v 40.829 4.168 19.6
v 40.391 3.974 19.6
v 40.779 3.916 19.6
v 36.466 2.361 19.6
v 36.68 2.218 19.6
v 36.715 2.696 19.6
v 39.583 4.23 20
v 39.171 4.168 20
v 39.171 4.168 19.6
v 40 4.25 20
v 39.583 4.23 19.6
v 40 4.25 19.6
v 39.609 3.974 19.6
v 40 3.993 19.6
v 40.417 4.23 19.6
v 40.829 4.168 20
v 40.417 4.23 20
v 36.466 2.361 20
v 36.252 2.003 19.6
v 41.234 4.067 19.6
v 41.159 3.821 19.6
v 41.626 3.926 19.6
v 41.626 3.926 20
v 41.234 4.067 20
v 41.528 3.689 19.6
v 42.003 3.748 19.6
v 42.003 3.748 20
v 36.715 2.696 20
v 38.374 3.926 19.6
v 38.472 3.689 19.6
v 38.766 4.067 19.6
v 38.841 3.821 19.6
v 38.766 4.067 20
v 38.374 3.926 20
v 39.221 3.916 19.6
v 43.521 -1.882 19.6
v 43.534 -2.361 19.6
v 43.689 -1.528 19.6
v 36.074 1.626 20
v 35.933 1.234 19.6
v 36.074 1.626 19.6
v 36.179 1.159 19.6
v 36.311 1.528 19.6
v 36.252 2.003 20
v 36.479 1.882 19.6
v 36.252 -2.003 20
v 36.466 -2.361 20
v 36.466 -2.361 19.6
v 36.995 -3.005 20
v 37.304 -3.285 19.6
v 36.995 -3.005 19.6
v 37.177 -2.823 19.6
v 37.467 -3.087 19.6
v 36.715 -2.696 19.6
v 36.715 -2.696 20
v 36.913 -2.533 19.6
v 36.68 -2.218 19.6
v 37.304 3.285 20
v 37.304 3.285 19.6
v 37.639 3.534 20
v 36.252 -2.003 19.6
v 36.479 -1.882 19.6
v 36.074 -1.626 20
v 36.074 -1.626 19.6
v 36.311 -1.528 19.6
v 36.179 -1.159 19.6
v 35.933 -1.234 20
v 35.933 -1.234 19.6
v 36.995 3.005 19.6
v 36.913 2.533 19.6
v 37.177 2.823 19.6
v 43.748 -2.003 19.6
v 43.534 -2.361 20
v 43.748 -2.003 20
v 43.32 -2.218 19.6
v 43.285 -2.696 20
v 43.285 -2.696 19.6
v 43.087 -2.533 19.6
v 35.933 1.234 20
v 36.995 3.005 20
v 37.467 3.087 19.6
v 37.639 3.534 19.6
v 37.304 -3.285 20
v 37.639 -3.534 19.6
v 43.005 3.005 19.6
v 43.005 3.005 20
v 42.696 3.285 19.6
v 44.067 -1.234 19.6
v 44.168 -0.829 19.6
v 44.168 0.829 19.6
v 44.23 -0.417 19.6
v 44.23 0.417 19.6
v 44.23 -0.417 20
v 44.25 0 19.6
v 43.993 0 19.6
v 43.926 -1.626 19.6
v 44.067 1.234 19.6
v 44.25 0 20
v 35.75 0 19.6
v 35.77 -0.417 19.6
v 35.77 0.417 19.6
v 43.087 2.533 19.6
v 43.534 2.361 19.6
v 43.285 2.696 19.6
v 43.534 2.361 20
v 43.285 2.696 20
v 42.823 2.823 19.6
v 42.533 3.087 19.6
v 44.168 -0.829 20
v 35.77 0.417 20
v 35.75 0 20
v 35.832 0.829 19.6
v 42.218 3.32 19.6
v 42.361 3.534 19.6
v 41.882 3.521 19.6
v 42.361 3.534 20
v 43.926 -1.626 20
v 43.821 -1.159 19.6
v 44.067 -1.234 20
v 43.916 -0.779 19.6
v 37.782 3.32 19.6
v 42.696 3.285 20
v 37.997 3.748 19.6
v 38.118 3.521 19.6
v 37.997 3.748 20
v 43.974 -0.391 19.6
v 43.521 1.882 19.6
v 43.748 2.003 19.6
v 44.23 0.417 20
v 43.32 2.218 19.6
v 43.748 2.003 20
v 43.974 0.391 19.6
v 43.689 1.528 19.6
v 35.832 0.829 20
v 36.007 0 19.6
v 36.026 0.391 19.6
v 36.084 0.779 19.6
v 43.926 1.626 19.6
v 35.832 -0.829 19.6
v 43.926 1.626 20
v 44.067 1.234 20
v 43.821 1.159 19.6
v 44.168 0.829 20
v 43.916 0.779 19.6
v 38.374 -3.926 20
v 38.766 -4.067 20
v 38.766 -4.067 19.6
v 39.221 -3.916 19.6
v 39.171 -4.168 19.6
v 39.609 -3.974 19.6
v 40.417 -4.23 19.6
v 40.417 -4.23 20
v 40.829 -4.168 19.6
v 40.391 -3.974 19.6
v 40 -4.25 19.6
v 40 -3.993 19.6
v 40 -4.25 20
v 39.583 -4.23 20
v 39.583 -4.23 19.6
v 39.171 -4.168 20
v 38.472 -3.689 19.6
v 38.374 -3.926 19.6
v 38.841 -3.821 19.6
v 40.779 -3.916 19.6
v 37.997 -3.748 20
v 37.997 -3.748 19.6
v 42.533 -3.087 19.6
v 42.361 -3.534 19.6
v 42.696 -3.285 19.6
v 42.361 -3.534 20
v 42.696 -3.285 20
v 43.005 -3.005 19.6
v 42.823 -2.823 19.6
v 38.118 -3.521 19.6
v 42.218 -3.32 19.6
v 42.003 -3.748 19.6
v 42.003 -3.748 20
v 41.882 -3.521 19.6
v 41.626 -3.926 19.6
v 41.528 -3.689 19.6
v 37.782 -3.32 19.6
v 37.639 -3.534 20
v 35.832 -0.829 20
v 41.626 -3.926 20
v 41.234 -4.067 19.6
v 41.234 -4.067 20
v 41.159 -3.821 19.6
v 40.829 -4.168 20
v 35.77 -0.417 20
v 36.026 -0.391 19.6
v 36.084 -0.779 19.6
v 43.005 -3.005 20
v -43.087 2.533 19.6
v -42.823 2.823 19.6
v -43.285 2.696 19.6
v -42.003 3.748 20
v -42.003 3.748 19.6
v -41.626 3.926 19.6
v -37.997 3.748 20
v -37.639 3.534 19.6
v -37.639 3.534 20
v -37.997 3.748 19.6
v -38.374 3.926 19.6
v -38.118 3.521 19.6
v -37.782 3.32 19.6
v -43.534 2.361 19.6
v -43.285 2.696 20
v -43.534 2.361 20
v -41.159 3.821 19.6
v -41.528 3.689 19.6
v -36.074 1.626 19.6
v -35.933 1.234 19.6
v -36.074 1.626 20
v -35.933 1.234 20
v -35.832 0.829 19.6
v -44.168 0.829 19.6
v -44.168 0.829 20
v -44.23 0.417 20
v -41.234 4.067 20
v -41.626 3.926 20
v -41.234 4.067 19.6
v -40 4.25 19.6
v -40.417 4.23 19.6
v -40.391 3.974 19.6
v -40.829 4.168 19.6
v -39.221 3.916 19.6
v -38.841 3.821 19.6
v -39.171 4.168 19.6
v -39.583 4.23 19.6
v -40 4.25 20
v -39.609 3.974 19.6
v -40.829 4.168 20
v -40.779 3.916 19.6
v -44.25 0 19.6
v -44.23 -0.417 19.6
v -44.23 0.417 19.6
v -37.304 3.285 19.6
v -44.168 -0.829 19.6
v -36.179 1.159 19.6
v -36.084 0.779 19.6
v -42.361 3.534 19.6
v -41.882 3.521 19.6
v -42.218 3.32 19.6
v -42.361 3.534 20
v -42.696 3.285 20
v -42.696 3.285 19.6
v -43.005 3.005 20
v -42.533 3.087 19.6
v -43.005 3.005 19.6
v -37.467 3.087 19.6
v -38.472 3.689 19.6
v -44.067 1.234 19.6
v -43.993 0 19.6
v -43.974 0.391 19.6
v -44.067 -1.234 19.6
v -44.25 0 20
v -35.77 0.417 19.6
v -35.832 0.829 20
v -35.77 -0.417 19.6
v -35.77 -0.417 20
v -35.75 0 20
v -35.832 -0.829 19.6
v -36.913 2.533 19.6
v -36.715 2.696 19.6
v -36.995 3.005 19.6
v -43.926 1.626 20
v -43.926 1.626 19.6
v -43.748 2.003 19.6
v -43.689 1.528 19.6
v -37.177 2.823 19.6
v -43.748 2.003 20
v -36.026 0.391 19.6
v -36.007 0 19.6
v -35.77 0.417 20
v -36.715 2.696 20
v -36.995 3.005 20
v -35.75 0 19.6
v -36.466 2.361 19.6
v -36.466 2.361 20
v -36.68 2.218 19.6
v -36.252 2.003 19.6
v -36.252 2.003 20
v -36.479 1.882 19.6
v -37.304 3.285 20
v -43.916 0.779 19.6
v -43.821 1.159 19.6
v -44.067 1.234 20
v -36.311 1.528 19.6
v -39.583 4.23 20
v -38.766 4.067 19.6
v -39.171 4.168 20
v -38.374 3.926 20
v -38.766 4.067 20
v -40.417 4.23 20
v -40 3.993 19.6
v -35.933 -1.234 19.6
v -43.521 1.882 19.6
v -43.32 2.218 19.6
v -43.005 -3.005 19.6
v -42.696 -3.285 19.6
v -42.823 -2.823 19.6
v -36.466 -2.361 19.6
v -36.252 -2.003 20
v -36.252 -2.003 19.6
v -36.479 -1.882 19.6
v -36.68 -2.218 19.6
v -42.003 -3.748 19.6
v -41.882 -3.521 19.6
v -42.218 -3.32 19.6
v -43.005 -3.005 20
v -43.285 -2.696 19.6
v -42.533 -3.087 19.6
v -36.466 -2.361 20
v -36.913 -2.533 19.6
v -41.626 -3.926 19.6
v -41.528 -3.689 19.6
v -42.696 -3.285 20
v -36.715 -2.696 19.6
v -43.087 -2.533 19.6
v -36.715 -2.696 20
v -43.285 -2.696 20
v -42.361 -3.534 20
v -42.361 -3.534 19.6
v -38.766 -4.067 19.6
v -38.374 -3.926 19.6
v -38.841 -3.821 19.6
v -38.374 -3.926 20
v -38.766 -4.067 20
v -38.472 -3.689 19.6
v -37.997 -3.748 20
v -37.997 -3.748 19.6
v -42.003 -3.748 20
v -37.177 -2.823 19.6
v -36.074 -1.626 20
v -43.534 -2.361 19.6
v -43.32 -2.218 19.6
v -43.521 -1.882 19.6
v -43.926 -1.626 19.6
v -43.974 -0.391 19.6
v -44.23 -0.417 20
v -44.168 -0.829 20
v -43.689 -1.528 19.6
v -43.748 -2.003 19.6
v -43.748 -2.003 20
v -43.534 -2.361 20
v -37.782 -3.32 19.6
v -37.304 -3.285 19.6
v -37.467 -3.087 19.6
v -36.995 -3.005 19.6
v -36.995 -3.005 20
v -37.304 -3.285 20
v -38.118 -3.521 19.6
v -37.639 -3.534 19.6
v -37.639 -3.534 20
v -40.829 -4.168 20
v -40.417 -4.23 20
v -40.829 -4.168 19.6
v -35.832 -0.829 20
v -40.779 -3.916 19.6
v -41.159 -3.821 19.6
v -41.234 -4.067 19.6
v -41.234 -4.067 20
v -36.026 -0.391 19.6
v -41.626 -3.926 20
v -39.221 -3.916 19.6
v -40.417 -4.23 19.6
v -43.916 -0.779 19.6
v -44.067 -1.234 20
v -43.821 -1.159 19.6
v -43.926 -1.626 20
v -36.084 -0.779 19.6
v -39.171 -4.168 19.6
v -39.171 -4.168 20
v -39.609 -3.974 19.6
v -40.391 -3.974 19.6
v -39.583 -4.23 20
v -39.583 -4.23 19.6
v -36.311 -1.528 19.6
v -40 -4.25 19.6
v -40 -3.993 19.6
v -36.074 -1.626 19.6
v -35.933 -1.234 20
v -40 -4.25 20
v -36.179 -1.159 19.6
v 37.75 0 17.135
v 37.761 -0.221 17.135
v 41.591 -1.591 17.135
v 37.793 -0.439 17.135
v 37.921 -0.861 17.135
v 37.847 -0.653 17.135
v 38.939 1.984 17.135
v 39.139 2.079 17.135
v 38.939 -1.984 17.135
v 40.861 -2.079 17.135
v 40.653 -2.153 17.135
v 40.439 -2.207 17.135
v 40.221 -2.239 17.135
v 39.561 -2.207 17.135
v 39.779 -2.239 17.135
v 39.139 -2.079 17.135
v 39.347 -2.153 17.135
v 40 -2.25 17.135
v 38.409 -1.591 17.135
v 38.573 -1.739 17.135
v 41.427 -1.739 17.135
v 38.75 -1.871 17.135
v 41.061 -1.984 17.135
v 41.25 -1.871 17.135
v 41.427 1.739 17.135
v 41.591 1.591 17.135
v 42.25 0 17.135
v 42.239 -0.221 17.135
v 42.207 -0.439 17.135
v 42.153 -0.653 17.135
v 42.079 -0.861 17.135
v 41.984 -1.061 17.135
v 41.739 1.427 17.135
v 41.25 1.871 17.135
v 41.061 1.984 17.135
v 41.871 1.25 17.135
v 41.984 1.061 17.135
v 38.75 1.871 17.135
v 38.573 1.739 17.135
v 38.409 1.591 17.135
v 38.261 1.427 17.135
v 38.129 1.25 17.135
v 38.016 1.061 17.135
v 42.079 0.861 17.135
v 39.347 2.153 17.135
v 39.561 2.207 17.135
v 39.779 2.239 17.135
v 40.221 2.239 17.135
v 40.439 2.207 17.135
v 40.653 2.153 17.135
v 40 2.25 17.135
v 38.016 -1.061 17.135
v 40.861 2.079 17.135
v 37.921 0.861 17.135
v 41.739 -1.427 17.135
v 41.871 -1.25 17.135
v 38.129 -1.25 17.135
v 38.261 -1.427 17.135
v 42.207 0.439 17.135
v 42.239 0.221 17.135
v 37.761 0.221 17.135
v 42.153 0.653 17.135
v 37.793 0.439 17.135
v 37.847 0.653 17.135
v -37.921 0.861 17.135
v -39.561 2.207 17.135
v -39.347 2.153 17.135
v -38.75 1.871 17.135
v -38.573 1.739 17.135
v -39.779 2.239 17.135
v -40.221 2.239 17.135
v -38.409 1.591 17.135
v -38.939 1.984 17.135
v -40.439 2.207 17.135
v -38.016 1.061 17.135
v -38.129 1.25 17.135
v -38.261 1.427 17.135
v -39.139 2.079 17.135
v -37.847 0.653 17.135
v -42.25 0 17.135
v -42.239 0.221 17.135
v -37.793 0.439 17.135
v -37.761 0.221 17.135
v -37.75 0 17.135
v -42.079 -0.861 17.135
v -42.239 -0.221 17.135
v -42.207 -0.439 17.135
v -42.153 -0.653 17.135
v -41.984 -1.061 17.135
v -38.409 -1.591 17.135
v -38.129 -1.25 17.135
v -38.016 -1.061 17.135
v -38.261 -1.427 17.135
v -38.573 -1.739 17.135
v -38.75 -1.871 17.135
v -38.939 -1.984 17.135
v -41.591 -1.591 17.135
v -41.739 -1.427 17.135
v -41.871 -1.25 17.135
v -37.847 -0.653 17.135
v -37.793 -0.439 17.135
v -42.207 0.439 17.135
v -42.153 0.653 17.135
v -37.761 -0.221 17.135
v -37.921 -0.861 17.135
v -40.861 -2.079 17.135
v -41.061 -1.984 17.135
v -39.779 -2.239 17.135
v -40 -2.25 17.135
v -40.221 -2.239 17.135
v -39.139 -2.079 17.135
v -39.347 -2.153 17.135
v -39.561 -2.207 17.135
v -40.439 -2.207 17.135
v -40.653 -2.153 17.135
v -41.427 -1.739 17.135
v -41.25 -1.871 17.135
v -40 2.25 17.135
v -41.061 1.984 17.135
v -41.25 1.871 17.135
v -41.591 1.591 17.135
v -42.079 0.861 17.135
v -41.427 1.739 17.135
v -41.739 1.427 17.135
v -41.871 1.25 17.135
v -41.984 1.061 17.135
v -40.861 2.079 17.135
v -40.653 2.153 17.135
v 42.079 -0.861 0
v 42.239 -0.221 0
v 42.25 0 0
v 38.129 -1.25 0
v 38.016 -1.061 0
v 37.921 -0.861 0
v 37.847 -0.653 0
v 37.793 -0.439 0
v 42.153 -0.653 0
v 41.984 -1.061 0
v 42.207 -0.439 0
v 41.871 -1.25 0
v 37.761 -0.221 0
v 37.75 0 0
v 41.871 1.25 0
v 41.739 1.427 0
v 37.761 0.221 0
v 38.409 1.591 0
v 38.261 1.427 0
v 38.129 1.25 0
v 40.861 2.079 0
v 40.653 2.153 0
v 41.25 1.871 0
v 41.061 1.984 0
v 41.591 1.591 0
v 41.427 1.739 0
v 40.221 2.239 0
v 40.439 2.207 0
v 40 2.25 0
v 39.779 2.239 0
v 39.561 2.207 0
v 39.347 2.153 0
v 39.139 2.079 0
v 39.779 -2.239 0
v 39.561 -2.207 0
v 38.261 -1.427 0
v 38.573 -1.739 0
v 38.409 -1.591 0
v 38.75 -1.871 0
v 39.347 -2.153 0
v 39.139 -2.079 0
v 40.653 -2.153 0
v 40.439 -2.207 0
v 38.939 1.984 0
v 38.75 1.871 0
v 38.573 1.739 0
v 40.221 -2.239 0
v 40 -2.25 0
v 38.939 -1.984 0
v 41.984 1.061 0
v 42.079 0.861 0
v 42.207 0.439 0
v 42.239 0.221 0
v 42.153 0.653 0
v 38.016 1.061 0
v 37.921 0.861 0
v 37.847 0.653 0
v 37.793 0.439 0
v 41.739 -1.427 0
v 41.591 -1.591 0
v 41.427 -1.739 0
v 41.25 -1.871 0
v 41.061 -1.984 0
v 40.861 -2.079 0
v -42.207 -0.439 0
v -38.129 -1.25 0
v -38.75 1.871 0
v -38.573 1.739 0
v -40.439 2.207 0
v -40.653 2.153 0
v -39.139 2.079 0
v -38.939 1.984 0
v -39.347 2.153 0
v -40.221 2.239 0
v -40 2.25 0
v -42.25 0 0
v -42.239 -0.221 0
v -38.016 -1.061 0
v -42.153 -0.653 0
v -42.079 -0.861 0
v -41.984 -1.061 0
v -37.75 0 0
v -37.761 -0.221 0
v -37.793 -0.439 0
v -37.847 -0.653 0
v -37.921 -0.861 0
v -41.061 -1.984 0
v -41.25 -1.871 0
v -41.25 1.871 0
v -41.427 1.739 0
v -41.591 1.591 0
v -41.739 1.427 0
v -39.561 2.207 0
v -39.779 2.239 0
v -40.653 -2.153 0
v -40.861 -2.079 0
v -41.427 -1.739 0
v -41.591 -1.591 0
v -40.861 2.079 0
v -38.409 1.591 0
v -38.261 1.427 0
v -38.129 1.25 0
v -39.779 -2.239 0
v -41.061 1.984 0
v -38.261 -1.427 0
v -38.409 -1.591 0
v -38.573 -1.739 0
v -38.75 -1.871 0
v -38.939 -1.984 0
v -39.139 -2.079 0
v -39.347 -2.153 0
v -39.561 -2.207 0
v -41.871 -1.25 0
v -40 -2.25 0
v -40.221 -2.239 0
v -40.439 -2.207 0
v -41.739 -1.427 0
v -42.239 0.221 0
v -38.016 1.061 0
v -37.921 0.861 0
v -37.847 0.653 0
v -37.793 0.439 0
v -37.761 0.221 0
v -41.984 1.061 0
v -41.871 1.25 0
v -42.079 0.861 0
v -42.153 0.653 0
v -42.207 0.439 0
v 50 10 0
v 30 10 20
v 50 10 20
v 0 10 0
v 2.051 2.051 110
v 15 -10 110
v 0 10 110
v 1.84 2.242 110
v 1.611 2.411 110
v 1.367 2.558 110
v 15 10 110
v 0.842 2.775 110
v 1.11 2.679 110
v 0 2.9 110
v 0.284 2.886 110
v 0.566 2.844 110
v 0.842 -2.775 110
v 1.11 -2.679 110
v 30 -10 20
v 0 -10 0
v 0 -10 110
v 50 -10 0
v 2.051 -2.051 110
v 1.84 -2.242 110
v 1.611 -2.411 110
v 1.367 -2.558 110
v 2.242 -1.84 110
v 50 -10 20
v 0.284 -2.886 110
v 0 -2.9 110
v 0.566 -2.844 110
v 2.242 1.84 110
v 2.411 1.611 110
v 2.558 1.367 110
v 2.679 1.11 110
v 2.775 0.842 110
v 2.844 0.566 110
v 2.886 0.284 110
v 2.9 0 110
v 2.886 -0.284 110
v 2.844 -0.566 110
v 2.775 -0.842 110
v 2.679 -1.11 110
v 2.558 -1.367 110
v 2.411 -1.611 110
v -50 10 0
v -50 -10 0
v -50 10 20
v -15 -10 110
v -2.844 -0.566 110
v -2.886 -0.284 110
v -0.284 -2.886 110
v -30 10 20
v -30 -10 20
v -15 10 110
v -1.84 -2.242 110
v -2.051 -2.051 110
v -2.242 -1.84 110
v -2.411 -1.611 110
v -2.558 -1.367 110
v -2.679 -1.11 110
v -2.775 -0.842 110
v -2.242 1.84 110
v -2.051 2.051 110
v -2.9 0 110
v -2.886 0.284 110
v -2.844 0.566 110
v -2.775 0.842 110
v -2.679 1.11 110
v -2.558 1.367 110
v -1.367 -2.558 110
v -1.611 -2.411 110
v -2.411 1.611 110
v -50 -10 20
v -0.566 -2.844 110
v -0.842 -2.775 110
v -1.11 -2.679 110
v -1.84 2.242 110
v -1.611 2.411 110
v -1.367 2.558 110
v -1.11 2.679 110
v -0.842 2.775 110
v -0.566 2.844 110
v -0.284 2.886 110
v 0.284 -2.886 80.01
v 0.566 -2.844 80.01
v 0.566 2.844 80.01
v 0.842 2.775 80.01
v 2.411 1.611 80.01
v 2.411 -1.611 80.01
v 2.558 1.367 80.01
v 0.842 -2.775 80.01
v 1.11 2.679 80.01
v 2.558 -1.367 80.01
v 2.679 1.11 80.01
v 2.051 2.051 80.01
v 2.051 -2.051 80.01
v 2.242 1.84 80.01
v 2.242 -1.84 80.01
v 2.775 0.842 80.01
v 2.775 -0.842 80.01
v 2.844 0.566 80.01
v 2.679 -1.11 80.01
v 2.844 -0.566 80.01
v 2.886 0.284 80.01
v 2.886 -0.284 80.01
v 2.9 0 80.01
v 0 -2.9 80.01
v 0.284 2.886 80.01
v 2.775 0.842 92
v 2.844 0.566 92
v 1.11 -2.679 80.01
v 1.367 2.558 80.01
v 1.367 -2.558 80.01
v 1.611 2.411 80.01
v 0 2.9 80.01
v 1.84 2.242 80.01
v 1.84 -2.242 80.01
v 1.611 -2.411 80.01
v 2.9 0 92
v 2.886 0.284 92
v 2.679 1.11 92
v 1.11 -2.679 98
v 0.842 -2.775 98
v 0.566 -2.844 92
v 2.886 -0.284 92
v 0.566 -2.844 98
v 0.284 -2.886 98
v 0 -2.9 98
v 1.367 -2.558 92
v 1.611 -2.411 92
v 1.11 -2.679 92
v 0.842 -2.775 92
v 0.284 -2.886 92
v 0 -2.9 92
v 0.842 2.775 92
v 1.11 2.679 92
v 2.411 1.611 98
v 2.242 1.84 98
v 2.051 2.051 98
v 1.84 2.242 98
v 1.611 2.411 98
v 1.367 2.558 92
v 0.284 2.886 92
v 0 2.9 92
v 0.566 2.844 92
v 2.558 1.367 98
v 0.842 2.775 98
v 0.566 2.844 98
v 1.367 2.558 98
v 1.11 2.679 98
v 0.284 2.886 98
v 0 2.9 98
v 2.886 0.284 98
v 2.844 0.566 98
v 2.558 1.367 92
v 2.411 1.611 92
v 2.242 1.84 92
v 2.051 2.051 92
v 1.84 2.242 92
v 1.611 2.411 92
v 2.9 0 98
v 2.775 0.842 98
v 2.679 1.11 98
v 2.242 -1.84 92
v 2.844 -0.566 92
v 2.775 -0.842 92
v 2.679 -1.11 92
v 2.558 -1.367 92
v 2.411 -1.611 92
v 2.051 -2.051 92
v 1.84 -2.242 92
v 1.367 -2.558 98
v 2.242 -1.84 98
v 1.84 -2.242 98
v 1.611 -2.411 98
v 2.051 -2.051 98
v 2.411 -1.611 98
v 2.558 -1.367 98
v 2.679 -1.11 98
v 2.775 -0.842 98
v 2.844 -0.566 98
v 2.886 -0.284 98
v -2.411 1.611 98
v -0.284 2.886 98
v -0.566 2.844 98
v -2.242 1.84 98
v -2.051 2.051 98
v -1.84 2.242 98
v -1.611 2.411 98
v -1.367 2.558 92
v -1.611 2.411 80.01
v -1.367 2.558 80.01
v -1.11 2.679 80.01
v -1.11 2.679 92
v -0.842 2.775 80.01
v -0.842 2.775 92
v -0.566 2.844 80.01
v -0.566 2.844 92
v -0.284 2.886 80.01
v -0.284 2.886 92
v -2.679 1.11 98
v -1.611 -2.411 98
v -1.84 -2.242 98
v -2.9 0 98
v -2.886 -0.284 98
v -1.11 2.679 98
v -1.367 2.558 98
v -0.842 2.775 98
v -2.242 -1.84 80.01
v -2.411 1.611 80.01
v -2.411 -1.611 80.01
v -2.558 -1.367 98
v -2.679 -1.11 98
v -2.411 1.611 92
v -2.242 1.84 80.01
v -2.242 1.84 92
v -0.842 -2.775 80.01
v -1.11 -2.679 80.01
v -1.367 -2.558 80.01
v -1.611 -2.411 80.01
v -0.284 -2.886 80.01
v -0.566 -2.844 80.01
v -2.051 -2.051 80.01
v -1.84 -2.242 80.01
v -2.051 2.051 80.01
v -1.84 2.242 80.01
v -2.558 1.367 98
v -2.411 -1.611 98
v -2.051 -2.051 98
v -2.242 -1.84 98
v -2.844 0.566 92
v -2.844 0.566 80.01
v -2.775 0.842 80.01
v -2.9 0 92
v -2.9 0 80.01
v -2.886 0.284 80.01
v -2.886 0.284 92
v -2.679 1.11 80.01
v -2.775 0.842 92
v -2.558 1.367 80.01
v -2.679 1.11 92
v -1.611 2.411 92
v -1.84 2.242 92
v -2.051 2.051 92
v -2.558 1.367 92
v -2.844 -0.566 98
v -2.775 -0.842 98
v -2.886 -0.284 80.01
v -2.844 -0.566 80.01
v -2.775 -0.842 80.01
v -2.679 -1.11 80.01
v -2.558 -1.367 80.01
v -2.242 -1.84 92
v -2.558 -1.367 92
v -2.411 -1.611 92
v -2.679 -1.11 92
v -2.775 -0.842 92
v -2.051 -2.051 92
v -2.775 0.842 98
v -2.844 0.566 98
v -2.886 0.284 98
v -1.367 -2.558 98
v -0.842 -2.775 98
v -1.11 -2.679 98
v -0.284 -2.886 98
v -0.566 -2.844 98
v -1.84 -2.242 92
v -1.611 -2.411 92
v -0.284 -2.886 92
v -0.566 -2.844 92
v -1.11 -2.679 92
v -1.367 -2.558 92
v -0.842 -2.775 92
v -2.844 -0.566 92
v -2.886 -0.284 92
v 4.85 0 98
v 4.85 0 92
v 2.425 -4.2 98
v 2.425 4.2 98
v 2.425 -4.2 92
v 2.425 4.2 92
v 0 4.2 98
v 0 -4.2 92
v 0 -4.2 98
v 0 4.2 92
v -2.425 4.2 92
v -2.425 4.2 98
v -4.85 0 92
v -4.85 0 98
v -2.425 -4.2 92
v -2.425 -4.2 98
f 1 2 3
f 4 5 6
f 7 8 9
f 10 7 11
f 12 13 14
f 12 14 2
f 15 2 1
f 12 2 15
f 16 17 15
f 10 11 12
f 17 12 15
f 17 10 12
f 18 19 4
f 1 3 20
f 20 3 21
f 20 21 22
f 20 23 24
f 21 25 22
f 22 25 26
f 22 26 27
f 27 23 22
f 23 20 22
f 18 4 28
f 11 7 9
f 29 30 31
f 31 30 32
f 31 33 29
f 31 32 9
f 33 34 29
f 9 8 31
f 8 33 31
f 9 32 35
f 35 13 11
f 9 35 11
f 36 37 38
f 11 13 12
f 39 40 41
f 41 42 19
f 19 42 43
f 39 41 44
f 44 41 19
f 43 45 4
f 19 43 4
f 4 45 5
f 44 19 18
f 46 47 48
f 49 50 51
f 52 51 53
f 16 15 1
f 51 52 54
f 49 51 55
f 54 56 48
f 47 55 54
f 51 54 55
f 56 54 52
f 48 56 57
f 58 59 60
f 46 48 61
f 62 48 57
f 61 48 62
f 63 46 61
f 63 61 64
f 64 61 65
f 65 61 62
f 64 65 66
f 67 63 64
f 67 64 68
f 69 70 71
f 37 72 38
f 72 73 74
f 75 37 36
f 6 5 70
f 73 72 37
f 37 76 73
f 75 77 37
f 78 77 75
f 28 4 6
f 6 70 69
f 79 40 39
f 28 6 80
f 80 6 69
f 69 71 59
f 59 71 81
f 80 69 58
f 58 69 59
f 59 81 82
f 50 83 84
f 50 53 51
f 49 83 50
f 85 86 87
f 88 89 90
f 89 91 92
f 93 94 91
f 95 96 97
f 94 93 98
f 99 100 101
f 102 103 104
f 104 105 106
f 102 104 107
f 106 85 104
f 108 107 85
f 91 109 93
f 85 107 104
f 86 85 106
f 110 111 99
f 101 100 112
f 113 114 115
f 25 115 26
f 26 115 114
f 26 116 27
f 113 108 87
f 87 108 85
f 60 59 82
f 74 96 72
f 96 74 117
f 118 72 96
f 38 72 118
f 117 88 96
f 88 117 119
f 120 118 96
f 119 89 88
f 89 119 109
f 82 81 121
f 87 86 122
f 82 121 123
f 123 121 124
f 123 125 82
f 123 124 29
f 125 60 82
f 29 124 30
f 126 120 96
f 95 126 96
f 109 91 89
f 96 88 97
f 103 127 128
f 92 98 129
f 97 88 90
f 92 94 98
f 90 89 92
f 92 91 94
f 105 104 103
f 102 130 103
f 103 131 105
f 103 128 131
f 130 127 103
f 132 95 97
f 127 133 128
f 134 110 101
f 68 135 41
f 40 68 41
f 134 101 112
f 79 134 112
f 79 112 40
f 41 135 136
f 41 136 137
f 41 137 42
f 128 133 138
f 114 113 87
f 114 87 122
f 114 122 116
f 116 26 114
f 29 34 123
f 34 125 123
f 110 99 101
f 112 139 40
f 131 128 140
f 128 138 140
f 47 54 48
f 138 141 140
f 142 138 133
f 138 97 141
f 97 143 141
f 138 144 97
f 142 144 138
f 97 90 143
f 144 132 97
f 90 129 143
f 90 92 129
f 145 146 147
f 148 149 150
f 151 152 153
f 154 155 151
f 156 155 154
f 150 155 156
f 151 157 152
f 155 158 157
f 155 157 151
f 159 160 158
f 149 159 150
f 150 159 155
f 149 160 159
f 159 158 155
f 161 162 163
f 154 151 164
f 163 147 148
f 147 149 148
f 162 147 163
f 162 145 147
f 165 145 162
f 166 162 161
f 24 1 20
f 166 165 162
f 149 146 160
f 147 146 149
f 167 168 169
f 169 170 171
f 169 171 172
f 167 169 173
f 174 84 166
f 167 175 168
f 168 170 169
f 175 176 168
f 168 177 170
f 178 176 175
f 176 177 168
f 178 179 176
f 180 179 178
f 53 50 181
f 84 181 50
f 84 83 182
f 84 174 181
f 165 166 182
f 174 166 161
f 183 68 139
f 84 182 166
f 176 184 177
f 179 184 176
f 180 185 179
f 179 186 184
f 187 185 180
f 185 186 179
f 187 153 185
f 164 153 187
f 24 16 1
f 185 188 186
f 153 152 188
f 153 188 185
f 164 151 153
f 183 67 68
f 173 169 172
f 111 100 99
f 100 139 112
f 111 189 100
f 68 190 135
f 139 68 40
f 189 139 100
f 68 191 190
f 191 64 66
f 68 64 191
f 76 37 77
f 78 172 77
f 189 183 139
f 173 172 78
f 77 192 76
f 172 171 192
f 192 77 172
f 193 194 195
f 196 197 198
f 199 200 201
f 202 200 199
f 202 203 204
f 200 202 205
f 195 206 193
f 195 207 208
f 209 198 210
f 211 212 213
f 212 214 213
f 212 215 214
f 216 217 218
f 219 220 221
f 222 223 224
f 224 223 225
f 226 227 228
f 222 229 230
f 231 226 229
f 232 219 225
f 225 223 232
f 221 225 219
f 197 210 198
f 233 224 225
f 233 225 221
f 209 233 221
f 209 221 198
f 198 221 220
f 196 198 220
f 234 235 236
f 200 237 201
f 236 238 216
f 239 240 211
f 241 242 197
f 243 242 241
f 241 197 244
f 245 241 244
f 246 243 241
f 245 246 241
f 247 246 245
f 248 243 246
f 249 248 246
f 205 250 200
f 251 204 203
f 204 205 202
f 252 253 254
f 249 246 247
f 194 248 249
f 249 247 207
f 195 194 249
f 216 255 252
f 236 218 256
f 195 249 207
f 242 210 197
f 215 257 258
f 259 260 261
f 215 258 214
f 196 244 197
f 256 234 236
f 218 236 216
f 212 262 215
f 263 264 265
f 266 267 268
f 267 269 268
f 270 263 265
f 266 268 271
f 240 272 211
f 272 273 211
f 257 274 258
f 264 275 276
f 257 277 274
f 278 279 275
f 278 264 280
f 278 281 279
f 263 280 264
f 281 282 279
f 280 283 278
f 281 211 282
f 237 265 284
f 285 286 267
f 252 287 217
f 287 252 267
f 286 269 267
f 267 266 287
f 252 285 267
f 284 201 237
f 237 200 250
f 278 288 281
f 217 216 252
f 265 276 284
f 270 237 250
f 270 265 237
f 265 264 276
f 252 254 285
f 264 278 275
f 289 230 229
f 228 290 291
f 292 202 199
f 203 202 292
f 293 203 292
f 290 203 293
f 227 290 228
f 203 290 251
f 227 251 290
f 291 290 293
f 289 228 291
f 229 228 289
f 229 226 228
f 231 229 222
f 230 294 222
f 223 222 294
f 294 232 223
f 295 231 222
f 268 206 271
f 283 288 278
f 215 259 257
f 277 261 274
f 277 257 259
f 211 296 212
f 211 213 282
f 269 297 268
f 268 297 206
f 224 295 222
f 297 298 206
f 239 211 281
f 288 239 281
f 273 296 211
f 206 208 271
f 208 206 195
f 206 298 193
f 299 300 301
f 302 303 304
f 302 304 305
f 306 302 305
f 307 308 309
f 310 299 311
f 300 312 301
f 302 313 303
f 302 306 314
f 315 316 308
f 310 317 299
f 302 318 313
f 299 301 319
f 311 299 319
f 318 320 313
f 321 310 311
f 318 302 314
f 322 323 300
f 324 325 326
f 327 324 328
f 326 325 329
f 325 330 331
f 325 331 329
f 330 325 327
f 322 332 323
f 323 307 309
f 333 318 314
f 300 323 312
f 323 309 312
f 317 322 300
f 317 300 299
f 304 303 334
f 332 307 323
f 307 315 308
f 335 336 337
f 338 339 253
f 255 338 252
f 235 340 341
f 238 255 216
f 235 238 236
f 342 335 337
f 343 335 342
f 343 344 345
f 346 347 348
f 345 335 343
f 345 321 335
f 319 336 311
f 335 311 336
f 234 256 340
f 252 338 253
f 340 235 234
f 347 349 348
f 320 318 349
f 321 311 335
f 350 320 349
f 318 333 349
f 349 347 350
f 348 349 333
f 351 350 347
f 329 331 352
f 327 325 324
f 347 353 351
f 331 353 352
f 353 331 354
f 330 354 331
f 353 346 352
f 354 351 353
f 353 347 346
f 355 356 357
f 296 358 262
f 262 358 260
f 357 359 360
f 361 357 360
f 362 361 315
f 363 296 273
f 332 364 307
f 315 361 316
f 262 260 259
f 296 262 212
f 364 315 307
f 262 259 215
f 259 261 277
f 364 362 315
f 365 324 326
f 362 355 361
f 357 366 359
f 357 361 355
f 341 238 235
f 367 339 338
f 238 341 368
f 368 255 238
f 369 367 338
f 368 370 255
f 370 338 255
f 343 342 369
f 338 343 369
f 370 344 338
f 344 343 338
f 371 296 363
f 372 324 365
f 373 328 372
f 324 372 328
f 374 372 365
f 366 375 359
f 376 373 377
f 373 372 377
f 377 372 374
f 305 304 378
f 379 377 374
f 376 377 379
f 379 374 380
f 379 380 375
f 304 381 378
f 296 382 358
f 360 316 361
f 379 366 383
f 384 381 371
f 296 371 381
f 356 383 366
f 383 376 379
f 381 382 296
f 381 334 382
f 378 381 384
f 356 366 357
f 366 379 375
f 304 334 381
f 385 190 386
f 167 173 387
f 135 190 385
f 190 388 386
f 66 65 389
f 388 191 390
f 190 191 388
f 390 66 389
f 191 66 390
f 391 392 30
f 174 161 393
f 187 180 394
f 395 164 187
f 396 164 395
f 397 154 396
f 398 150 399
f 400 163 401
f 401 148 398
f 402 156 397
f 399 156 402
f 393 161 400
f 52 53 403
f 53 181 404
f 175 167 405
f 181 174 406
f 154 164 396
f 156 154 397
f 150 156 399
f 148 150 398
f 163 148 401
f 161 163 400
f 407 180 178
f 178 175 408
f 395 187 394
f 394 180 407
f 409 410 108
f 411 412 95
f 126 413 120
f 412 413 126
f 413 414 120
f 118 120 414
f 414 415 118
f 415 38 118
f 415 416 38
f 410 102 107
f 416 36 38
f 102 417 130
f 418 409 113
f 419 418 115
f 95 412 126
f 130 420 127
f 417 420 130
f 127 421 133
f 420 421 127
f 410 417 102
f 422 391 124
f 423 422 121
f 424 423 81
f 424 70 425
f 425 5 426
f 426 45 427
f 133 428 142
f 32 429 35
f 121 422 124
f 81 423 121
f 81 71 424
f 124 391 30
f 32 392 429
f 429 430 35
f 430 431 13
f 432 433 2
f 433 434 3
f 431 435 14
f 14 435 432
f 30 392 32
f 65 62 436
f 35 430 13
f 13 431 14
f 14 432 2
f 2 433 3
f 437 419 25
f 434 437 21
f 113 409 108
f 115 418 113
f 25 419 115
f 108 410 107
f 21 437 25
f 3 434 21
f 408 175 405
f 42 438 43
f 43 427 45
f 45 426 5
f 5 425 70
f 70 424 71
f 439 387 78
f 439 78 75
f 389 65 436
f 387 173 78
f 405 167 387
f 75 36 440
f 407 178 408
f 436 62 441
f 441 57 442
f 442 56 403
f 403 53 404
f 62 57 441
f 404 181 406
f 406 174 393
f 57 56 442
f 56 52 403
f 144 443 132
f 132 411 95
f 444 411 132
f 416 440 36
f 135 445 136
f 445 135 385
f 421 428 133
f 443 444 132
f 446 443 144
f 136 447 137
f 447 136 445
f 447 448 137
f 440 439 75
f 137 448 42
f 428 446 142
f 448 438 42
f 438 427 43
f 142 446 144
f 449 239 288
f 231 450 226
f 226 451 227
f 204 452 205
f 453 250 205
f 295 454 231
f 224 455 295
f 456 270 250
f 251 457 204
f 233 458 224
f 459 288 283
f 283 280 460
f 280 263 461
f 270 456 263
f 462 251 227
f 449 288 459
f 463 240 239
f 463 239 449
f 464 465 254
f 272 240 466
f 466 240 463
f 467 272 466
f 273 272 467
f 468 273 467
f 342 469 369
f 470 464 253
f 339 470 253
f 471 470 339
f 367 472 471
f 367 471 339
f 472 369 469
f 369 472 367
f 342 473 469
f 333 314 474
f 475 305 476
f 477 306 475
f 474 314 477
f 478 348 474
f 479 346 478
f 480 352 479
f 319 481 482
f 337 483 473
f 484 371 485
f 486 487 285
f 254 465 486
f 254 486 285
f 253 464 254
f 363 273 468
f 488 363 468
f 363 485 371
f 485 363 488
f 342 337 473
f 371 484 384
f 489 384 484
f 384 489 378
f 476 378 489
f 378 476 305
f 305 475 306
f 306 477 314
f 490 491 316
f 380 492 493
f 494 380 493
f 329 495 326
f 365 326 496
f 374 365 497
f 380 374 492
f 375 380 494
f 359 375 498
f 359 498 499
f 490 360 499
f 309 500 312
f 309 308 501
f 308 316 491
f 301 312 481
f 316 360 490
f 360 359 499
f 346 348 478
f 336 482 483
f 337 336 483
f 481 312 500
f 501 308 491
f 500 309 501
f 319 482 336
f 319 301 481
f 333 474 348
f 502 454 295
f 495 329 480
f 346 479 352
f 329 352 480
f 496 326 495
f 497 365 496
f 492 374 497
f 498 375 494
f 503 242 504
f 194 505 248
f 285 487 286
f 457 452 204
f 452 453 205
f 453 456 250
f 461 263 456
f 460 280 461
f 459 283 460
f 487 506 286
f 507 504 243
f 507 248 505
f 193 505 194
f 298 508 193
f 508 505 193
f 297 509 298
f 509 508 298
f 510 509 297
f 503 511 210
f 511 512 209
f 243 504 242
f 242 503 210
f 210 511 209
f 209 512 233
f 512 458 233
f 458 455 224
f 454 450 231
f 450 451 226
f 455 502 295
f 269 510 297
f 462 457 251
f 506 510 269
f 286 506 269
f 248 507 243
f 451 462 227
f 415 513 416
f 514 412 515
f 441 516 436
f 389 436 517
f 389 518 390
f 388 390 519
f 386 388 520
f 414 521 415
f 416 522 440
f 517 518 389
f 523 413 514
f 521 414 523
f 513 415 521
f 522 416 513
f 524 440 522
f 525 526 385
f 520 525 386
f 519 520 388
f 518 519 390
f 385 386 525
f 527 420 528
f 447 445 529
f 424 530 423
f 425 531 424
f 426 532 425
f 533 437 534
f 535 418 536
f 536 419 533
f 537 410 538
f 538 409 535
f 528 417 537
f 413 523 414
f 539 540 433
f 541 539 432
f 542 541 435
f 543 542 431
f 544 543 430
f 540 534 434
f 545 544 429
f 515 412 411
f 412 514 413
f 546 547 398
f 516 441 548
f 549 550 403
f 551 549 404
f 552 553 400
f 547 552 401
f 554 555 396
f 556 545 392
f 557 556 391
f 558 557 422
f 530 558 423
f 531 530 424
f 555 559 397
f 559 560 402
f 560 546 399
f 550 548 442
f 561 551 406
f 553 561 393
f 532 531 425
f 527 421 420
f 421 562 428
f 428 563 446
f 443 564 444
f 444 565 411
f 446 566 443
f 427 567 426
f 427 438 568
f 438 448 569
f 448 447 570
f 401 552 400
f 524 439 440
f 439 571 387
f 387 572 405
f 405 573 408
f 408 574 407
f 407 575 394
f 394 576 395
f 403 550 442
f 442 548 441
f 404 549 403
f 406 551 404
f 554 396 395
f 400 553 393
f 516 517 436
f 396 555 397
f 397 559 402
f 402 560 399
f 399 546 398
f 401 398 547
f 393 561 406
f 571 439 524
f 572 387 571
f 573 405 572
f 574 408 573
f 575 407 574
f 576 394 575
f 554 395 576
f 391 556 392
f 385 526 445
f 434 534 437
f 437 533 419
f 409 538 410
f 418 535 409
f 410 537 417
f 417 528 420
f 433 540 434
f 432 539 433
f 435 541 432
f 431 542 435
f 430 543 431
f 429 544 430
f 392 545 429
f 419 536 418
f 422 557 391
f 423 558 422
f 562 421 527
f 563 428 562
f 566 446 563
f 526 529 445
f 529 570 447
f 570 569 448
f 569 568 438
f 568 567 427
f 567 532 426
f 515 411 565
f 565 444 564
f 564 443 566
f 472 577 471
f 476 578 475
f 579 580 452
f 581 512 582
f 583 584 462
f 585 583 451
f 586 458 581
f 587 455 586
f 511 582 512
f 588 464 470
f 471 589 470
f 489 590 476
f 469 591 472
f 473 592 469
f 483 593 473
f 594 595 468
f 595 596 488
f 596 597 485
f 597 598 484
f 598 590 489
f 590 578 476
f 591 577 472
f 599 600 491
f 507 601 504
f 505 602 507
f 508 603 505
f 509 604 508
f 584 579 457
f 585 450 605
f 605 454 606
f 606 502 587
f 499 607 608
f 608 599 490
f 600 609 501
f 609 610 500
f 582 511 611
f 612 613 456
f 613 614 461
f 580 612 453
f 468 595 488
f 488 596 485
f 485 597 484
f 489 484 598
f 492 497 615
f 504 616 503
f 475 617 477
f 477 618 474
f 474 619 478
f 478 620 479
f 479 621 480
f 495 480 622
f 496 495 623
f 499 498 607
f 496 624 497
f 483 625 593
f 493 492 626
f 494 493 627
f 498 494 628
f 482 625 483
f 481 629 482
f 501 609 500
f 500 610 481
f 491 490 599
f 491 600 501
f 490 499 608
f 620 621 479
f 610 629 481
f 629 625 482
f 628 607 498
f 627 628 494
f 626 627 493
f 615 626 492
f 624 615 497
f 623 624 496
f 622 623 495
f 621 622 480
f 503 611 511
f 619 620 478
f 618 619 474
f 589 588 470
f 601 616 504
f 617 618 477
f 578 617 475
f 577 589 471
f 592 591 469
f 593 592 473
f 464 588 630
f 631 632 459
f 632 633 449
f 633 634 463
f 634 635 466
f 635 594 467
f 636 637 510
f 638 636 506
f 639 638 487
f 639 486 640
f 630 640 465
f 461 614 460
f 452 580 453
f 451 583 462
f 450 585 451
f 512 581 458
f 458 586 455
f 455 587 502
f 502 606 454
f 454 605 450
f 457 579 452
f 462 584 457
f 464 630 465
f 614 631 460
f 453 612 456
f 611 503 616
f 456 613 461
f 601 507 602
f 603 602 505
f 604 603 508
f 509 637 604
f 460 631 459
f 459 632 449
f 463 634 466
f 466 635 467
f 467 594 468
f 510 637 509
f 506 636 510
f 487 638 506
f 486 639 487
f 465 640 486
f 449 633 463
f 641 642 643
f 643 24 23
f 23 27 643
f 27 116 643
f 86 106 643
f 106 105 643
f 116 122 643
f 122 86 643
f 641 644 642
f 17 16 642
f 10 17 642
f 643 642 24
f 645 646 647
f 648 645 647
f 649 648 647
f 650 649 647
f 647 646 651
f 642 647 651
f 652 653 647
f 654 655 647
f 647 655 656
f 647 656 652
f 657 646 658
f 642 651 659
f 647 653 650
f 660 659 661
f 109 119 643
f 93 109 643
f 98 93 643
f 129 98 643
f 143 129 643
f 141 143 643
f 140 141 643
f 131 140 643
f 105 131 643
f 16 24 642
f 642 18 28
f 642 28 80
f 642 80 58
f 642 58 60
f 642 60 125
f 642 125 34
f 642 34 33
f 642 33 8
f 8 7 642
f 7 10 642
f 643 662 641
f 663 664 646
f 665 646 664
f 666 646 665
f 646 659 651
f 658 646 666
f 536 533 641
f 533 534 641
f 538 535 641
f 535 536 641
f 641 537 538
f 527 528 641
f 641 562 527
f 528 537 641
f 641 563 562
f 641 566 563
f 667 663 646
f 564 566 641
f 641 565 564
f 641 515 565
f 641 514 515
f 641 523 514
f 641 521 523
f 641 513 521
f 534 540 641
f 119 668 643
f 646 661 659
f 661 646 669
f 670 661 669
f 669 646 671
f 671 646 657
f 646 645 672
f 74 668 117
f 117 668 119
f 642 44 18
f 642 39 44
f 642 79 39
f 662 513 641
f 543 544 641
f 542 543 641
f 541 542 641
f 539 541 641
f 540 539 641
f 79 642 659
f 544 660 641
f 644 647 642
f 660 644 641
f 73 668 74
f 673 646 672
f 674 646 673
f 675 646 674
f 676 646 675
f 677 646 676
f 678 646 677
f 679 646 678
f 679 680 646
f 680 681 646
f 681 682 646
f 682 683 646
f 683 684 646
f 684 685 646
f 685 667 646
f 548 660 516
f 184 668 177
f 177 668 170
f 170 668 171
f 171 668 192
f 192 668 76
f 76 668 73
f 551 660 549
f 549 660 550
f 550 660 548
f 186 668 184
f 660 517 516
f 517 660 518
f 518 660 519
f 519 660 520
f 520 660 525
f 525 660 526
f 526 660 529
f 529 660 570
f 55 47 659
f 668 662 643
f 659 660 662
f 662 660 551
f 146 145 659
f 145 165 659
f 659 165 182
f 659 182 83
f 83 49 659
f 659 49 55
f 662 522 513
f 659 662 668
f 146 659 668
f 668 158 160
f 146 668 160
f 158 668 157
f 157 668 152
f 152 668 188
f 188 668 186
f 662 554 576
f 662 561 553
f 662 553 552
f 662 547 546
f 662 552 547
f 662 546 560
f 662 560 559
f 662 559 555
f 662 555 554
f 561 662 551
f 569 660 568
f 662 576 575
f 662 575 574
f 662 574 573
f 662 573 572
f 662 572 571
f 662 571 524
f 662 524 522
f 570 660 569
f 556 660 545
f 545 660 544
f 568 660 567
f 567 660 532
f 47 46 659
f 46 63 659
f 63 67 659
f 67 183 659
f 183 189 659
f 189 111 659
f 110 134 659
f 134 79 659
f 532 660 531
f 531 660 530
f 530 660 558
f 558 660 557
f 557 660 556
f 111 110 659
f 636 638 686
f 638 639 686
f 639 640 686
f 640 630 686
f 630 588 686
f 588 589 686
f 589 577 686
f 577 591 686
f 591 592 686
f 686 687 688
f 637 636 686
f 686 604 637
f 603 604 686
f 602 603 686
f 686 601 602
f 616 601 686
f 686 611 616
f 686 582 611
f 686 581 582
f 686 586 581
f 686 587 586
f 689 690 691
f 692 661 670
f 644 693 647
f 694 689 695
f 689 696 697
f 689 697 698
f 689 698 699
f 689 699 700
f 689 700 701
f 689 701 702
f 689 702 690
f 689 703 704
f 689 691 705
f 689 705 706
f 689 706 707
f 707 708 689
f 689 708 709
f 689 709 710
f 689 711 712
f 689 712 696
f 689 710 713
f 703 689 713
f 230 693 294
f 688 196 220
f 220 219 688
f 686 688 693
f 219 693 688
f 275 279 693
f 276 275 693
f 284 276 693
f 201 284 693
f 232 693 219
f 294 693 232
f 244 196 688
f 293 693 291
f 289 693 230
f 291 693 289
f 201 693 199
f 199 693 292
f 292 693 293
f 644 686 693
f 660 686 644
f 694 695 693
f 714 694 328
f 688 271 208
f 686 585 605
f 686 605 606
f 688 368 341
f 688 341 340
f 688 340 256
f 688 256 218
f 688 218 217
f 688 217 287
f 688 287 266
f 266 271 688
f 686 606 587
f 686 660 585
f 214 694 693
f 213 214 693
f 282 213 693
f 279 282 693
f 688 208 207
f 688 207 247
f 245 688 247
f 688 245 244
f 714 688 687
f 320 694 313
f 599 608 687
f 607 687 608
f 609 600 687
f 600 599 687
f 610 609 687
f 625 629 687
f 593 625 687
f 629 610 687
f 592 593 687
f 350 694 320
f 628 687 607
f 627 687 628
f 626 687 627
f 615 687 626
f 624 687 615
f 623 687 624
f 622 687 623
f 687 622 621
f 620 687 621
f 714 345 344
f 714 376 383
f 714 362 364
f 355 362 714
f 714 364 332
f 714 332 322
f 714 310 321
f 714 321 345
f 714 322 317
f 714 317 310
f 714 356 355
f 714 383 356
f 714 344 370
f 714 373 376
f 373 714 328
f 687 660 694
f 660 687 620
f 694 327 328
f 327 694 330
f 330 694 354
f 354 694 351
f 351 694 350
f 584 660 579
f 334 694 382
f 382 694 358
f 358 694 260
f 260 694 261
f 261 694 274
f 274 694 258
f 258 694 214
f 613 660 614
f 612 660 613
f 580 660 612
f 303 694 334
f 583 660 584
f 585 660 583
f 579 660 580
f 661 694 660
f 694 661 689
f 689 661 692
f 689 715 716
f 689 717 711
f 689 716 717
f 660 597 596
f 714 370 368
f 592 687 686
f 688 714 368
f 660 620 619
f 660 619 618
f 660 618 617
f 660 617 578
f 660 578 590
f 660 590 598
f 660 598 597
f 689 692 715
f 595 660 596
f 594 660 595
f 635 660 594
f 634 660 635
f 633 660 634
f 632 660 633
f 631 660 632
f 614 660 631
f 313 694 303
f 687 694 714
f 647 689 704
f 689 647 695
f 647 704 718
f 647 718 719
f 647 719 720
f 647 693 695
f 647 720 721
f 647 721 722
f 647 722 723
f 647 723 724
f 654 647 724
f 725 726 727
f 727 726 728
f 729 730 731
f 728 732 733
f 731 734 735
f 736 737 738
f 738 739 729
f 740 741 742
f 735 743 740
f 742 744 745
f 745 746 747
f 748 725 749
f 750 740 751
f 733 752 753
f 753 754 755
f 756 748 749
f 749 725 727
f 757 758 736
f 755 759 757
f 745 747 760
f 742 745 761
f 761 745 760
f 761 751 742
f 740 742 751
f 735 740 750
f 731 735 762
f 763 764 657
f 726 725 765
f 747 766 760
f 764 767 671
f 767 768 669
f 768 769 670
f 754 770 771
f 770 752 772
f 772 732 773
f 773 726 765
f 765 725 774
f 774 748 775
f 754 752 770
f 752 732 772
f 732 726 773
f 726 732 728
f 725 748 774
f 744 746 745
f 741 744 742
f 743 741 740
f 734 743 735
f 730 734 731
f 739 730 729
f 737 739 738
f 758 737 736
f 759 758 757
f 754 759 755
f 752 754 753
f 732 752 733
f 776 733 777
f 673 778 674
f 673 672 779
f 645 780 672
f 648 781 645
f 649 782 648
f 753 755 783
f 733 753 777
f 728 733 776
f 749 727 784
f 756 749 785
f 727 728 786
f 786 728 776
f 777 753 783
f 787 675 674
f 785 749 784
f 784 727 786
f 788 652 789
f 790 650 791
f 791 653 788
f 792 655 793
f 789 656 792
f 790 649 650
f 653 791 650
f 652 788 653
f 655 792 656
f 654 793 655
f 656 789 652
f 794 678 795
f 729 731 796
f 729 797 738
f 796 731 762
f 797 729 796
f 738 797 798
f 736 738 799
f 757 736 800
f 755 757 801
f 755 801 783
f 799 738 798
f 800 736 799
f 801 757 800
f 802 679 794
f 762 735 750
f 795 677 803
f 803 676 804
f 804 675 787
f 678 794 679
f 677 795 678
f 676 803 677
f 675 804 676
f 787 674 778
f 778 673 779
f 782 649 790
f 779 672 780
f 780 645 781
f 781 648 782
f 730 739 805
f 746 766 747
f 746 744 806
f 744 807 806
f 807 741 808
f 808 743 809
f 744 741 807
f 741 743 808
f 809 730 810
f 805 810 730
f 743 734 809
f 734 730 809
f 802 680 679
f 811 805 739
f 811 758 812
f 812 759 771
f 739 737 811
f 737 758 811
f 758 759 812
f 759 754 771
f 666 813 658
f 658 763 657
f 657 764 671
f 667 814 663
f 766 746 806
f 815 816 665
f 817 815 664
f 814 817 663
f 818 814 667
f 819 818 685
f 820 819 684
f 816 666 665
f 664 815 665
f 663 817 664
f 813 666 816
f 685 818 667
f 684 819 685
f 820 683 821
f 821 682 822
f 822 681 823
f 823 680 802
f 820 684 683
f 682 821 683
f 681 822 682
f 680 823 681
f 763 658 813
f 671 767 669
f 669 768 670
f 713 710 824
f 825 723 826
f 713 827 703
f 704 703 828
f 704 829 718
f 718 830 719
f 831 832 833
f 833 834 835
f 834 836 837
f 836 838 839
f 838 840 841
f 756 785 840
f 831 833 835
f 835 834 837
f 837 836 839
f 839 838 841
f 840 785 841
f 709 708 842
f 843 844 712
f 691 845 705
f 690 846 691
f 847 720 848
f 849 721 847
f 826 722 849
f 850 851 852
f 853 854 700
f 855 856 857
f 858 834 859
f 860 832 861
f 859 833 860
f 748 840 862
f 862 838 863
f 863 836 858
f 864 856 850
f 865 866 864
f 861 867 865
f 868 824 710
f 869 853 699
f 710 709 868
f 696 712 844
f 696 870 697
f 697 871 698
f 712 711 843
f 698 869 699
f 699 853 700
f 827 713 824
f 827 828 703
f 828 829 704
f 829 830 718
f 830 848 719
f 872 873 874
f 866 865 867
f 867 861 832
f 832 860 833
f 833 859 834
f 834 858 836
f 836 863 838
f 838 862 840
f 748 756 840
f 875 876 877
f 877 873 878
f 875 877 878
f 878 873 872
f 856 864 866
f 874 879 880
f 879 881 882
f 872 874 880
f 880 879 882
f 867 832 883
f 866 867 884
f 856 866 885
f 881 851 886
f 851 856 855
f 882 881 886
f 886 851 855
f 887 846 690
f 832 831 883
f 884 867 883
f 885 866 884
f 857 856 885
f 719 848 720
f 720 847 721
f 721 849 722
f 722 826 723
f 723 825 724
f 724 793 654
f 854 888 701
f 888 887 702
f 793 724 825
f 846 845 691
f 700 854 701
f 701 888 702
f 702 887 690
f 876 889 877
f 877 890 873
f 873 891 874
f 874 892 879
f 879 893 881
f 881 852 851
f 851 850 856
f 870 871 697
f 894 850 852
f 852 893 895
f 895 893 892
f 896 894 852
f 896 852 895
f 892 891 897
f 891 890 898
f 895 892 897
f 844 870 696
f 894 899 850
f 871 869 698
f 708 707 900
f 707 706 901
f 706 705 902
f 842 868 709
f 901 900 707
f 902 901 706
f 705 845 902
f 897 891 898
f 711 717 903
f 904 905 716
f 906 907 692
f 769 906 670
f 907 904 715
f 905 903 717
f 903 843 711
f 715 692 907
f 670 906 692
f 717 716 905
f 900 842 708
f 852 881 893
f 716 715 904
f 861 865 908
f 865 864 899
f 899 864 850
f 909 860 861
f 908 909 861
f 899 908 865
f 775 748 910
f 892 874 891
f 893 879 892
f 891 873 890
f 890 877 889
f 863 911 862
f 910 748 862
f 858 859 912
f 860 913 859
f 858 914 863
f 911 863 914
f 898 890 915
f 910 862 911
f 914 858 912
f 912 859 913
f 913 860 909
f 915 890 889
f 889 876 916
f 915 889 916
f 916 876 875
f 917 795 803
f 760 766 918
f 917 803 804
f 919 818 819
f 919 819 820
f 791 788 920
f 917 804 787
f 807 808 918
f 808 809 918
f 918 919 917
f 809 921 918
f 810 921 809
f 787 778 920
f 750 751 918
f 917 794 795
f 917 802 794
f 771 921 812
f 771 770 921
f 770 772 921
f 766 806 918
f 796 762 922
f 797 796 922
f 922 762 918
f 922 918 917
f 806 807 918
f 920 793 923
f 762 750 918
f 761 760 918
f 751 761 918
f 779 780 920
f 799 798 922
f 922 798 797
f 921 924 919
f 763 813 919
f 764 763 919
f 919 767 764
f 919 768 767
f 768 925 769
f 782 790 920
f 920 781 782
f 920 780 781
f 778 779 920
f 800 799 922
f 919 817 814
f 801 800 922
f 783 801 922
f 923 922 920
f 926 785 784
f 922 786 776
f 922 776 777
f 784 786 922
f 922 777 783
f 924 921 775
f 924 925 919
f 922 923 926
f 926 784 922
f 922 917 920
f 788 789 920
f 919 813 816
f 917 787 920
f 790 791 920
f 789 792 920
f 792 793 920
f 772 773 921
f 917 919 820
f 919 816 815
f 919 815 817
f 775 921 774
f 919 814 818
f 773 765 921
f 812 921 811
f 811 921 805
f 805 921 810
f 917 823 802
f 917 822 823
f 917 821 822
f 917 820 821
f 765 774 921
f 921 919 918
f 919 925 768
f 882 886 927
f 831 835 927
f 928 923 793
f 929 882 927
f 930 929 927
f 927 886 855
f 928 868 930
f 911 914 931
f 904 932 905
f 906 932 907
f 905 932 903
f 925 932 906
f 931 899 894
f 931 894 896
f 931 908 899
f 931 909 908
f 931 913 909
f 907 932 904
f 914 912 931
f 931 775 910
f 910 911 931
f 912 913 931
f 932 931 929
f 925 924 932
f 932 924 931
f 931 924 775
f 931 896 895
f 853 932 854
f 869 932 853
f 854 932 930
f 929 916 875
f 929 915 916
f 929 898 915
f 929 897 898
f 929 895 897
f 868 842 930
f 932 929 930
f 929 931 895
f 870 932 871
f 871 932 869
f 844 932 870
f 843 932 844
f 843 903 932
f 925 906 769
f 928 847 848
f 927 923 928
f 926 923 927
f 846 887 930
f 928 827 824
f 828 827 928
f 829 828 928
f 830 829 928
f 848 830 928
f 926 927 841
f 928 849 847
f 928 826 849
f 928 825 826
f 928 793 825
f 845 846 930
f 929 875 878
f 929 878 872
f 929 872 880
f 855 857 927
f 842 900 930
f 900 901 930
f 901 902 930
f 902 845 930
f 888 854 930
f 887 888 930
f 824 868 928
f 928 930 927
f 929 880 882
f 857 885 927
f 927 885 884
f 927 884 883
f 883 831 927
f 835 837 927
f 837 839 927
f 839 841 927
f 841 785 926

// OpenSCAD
$fn = $preview ? 16 : 64;

bottomLength = 100;
topLength = 30;
topScrewDepth = 20;
partWidth = 20;
partHeight = 110;
earDepth = 20;
earWidth = 20;

module basePartHalf()
{
    rotate([90,0,0])
    linear_extrude(partWidth, center=true)
    {
        polygon([
            [0,0],
            [bottomLength/2,0],
            [bottomLength/2,earDepth],
            [bottomLength/2-earWidth,earDepth],
            [topLength/2,partHeight],
            [0,partHeight]
            ]);
    }
}

// 4x30 countersink wood screw
bottomScrewHeadDiameter = 8.5; // nominal 8
bottomScrewDiameter = 4.5; // nominal 4
bottomScrewExtraSink = 0.4;
bottomScrewSinkDepth = (bottomScrewHeadDiameter-bottomScrewDiameter)*sqrt(2);

// M5x30
topScrewDiameter = 5.8;
topScrewNutDiameter = 8.4 * (2/sqrt(3)); // 8mm + tolerance

topScrewInnerLength = 30;
topScrewNutPos = 12;
topScrewNutHeight = 6; // 5mm + tolerance

module partHalf()
{
    difference()
    {
        basePartHalf();
        
        translate([0,0,partHeight-topScrewInnerLength +0.01])
            cylinder(d=topScrewDiameter, h=topScrewInnerLength);
        translate([0,0,partHeight - topScrewNutPos - topScrewNutHeight])
        cylinder(d=topScrewNutDiameter, h=topScrewNutHeight, $fn = 6);
        
        translate([bottomLength/2-earWidth/2, 0, 0])
        {
            cylinder(d=bottomScrewDiameter, h=1000);
            translate([0,0,earDepth - bottomScrewExtraSink])
            {
                cylinder(h=1000, d=bottomScrewHeadDiameter);
                translate([0,0,-bottomScrewSinkDepth + 0.01])
                    cylinder(h=bottomScrewSinkDepth, d1=0, d2=8);
            }
        }
    }
}

if($preview)
{
    partHalf();
}
else
{
    union()
    {
        partHalf();
        mirror([1,0,0])
            partHalf();
    }
}
